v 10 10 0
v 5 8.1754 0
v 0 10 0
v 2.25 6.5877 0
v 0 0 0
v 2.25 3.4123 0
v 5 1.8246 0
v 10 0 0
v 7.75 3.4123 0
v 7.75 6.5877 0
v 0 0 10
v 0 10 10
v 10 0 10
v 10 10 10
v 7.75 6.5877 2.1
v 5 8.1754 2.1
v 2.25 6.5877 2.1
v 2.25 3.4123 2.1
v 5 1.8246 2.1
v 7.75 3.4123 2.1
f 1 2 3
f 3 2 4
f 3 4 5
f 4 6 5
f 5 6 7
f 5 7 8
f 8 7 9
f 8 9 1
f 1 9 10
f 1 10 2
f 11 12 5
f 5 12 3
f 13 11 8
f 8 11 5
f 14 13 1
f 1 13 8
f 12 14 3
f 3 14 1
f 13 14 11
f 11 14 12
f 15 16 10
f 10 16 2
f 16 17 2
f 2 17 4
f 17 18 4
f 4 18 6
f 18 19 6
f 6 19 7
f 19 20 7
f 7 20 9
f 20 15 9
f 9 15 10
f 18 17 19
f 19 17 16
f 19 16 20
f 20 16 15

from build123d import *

# Parameters (mm, degrees)
SKETCH_1_W          = 10
SKETCH_1_H          = 10
EXTRUDE_1_DEPTH     = 10
CUT_EXTRUDE_1_DEPTH = 2.1


with BuildPart() as part:
    # Sketch 1 → Extrude 1 (new body)
    with BuildSketch(Plane.XY):
        with Locations((5, 5)):
            Rectangle(SKETCH_1_W, SKETCH_1_H)
    extrude(amount=EXTRUDE_1_DEPTH)

    # Sketch 2 → Cut-Extrude 1 (cut)
    with BuildSketch(Plane(origin=(0, 50, 0), x_dir=(1, 0, 0), z_dir=(0, 0, 1))):
        Polygon((5, -41.824573519), (2.25, -43.41228676), (2.25, -46.58771324), (5, -48.175426481), (7.75, -46.58771324), (7.75, -43.41228676), align=None)
    extrude(amount=CUT_EXTRUDE_1_DEPTH, mode=Mode.SUBTRACT)


solid = part.part
